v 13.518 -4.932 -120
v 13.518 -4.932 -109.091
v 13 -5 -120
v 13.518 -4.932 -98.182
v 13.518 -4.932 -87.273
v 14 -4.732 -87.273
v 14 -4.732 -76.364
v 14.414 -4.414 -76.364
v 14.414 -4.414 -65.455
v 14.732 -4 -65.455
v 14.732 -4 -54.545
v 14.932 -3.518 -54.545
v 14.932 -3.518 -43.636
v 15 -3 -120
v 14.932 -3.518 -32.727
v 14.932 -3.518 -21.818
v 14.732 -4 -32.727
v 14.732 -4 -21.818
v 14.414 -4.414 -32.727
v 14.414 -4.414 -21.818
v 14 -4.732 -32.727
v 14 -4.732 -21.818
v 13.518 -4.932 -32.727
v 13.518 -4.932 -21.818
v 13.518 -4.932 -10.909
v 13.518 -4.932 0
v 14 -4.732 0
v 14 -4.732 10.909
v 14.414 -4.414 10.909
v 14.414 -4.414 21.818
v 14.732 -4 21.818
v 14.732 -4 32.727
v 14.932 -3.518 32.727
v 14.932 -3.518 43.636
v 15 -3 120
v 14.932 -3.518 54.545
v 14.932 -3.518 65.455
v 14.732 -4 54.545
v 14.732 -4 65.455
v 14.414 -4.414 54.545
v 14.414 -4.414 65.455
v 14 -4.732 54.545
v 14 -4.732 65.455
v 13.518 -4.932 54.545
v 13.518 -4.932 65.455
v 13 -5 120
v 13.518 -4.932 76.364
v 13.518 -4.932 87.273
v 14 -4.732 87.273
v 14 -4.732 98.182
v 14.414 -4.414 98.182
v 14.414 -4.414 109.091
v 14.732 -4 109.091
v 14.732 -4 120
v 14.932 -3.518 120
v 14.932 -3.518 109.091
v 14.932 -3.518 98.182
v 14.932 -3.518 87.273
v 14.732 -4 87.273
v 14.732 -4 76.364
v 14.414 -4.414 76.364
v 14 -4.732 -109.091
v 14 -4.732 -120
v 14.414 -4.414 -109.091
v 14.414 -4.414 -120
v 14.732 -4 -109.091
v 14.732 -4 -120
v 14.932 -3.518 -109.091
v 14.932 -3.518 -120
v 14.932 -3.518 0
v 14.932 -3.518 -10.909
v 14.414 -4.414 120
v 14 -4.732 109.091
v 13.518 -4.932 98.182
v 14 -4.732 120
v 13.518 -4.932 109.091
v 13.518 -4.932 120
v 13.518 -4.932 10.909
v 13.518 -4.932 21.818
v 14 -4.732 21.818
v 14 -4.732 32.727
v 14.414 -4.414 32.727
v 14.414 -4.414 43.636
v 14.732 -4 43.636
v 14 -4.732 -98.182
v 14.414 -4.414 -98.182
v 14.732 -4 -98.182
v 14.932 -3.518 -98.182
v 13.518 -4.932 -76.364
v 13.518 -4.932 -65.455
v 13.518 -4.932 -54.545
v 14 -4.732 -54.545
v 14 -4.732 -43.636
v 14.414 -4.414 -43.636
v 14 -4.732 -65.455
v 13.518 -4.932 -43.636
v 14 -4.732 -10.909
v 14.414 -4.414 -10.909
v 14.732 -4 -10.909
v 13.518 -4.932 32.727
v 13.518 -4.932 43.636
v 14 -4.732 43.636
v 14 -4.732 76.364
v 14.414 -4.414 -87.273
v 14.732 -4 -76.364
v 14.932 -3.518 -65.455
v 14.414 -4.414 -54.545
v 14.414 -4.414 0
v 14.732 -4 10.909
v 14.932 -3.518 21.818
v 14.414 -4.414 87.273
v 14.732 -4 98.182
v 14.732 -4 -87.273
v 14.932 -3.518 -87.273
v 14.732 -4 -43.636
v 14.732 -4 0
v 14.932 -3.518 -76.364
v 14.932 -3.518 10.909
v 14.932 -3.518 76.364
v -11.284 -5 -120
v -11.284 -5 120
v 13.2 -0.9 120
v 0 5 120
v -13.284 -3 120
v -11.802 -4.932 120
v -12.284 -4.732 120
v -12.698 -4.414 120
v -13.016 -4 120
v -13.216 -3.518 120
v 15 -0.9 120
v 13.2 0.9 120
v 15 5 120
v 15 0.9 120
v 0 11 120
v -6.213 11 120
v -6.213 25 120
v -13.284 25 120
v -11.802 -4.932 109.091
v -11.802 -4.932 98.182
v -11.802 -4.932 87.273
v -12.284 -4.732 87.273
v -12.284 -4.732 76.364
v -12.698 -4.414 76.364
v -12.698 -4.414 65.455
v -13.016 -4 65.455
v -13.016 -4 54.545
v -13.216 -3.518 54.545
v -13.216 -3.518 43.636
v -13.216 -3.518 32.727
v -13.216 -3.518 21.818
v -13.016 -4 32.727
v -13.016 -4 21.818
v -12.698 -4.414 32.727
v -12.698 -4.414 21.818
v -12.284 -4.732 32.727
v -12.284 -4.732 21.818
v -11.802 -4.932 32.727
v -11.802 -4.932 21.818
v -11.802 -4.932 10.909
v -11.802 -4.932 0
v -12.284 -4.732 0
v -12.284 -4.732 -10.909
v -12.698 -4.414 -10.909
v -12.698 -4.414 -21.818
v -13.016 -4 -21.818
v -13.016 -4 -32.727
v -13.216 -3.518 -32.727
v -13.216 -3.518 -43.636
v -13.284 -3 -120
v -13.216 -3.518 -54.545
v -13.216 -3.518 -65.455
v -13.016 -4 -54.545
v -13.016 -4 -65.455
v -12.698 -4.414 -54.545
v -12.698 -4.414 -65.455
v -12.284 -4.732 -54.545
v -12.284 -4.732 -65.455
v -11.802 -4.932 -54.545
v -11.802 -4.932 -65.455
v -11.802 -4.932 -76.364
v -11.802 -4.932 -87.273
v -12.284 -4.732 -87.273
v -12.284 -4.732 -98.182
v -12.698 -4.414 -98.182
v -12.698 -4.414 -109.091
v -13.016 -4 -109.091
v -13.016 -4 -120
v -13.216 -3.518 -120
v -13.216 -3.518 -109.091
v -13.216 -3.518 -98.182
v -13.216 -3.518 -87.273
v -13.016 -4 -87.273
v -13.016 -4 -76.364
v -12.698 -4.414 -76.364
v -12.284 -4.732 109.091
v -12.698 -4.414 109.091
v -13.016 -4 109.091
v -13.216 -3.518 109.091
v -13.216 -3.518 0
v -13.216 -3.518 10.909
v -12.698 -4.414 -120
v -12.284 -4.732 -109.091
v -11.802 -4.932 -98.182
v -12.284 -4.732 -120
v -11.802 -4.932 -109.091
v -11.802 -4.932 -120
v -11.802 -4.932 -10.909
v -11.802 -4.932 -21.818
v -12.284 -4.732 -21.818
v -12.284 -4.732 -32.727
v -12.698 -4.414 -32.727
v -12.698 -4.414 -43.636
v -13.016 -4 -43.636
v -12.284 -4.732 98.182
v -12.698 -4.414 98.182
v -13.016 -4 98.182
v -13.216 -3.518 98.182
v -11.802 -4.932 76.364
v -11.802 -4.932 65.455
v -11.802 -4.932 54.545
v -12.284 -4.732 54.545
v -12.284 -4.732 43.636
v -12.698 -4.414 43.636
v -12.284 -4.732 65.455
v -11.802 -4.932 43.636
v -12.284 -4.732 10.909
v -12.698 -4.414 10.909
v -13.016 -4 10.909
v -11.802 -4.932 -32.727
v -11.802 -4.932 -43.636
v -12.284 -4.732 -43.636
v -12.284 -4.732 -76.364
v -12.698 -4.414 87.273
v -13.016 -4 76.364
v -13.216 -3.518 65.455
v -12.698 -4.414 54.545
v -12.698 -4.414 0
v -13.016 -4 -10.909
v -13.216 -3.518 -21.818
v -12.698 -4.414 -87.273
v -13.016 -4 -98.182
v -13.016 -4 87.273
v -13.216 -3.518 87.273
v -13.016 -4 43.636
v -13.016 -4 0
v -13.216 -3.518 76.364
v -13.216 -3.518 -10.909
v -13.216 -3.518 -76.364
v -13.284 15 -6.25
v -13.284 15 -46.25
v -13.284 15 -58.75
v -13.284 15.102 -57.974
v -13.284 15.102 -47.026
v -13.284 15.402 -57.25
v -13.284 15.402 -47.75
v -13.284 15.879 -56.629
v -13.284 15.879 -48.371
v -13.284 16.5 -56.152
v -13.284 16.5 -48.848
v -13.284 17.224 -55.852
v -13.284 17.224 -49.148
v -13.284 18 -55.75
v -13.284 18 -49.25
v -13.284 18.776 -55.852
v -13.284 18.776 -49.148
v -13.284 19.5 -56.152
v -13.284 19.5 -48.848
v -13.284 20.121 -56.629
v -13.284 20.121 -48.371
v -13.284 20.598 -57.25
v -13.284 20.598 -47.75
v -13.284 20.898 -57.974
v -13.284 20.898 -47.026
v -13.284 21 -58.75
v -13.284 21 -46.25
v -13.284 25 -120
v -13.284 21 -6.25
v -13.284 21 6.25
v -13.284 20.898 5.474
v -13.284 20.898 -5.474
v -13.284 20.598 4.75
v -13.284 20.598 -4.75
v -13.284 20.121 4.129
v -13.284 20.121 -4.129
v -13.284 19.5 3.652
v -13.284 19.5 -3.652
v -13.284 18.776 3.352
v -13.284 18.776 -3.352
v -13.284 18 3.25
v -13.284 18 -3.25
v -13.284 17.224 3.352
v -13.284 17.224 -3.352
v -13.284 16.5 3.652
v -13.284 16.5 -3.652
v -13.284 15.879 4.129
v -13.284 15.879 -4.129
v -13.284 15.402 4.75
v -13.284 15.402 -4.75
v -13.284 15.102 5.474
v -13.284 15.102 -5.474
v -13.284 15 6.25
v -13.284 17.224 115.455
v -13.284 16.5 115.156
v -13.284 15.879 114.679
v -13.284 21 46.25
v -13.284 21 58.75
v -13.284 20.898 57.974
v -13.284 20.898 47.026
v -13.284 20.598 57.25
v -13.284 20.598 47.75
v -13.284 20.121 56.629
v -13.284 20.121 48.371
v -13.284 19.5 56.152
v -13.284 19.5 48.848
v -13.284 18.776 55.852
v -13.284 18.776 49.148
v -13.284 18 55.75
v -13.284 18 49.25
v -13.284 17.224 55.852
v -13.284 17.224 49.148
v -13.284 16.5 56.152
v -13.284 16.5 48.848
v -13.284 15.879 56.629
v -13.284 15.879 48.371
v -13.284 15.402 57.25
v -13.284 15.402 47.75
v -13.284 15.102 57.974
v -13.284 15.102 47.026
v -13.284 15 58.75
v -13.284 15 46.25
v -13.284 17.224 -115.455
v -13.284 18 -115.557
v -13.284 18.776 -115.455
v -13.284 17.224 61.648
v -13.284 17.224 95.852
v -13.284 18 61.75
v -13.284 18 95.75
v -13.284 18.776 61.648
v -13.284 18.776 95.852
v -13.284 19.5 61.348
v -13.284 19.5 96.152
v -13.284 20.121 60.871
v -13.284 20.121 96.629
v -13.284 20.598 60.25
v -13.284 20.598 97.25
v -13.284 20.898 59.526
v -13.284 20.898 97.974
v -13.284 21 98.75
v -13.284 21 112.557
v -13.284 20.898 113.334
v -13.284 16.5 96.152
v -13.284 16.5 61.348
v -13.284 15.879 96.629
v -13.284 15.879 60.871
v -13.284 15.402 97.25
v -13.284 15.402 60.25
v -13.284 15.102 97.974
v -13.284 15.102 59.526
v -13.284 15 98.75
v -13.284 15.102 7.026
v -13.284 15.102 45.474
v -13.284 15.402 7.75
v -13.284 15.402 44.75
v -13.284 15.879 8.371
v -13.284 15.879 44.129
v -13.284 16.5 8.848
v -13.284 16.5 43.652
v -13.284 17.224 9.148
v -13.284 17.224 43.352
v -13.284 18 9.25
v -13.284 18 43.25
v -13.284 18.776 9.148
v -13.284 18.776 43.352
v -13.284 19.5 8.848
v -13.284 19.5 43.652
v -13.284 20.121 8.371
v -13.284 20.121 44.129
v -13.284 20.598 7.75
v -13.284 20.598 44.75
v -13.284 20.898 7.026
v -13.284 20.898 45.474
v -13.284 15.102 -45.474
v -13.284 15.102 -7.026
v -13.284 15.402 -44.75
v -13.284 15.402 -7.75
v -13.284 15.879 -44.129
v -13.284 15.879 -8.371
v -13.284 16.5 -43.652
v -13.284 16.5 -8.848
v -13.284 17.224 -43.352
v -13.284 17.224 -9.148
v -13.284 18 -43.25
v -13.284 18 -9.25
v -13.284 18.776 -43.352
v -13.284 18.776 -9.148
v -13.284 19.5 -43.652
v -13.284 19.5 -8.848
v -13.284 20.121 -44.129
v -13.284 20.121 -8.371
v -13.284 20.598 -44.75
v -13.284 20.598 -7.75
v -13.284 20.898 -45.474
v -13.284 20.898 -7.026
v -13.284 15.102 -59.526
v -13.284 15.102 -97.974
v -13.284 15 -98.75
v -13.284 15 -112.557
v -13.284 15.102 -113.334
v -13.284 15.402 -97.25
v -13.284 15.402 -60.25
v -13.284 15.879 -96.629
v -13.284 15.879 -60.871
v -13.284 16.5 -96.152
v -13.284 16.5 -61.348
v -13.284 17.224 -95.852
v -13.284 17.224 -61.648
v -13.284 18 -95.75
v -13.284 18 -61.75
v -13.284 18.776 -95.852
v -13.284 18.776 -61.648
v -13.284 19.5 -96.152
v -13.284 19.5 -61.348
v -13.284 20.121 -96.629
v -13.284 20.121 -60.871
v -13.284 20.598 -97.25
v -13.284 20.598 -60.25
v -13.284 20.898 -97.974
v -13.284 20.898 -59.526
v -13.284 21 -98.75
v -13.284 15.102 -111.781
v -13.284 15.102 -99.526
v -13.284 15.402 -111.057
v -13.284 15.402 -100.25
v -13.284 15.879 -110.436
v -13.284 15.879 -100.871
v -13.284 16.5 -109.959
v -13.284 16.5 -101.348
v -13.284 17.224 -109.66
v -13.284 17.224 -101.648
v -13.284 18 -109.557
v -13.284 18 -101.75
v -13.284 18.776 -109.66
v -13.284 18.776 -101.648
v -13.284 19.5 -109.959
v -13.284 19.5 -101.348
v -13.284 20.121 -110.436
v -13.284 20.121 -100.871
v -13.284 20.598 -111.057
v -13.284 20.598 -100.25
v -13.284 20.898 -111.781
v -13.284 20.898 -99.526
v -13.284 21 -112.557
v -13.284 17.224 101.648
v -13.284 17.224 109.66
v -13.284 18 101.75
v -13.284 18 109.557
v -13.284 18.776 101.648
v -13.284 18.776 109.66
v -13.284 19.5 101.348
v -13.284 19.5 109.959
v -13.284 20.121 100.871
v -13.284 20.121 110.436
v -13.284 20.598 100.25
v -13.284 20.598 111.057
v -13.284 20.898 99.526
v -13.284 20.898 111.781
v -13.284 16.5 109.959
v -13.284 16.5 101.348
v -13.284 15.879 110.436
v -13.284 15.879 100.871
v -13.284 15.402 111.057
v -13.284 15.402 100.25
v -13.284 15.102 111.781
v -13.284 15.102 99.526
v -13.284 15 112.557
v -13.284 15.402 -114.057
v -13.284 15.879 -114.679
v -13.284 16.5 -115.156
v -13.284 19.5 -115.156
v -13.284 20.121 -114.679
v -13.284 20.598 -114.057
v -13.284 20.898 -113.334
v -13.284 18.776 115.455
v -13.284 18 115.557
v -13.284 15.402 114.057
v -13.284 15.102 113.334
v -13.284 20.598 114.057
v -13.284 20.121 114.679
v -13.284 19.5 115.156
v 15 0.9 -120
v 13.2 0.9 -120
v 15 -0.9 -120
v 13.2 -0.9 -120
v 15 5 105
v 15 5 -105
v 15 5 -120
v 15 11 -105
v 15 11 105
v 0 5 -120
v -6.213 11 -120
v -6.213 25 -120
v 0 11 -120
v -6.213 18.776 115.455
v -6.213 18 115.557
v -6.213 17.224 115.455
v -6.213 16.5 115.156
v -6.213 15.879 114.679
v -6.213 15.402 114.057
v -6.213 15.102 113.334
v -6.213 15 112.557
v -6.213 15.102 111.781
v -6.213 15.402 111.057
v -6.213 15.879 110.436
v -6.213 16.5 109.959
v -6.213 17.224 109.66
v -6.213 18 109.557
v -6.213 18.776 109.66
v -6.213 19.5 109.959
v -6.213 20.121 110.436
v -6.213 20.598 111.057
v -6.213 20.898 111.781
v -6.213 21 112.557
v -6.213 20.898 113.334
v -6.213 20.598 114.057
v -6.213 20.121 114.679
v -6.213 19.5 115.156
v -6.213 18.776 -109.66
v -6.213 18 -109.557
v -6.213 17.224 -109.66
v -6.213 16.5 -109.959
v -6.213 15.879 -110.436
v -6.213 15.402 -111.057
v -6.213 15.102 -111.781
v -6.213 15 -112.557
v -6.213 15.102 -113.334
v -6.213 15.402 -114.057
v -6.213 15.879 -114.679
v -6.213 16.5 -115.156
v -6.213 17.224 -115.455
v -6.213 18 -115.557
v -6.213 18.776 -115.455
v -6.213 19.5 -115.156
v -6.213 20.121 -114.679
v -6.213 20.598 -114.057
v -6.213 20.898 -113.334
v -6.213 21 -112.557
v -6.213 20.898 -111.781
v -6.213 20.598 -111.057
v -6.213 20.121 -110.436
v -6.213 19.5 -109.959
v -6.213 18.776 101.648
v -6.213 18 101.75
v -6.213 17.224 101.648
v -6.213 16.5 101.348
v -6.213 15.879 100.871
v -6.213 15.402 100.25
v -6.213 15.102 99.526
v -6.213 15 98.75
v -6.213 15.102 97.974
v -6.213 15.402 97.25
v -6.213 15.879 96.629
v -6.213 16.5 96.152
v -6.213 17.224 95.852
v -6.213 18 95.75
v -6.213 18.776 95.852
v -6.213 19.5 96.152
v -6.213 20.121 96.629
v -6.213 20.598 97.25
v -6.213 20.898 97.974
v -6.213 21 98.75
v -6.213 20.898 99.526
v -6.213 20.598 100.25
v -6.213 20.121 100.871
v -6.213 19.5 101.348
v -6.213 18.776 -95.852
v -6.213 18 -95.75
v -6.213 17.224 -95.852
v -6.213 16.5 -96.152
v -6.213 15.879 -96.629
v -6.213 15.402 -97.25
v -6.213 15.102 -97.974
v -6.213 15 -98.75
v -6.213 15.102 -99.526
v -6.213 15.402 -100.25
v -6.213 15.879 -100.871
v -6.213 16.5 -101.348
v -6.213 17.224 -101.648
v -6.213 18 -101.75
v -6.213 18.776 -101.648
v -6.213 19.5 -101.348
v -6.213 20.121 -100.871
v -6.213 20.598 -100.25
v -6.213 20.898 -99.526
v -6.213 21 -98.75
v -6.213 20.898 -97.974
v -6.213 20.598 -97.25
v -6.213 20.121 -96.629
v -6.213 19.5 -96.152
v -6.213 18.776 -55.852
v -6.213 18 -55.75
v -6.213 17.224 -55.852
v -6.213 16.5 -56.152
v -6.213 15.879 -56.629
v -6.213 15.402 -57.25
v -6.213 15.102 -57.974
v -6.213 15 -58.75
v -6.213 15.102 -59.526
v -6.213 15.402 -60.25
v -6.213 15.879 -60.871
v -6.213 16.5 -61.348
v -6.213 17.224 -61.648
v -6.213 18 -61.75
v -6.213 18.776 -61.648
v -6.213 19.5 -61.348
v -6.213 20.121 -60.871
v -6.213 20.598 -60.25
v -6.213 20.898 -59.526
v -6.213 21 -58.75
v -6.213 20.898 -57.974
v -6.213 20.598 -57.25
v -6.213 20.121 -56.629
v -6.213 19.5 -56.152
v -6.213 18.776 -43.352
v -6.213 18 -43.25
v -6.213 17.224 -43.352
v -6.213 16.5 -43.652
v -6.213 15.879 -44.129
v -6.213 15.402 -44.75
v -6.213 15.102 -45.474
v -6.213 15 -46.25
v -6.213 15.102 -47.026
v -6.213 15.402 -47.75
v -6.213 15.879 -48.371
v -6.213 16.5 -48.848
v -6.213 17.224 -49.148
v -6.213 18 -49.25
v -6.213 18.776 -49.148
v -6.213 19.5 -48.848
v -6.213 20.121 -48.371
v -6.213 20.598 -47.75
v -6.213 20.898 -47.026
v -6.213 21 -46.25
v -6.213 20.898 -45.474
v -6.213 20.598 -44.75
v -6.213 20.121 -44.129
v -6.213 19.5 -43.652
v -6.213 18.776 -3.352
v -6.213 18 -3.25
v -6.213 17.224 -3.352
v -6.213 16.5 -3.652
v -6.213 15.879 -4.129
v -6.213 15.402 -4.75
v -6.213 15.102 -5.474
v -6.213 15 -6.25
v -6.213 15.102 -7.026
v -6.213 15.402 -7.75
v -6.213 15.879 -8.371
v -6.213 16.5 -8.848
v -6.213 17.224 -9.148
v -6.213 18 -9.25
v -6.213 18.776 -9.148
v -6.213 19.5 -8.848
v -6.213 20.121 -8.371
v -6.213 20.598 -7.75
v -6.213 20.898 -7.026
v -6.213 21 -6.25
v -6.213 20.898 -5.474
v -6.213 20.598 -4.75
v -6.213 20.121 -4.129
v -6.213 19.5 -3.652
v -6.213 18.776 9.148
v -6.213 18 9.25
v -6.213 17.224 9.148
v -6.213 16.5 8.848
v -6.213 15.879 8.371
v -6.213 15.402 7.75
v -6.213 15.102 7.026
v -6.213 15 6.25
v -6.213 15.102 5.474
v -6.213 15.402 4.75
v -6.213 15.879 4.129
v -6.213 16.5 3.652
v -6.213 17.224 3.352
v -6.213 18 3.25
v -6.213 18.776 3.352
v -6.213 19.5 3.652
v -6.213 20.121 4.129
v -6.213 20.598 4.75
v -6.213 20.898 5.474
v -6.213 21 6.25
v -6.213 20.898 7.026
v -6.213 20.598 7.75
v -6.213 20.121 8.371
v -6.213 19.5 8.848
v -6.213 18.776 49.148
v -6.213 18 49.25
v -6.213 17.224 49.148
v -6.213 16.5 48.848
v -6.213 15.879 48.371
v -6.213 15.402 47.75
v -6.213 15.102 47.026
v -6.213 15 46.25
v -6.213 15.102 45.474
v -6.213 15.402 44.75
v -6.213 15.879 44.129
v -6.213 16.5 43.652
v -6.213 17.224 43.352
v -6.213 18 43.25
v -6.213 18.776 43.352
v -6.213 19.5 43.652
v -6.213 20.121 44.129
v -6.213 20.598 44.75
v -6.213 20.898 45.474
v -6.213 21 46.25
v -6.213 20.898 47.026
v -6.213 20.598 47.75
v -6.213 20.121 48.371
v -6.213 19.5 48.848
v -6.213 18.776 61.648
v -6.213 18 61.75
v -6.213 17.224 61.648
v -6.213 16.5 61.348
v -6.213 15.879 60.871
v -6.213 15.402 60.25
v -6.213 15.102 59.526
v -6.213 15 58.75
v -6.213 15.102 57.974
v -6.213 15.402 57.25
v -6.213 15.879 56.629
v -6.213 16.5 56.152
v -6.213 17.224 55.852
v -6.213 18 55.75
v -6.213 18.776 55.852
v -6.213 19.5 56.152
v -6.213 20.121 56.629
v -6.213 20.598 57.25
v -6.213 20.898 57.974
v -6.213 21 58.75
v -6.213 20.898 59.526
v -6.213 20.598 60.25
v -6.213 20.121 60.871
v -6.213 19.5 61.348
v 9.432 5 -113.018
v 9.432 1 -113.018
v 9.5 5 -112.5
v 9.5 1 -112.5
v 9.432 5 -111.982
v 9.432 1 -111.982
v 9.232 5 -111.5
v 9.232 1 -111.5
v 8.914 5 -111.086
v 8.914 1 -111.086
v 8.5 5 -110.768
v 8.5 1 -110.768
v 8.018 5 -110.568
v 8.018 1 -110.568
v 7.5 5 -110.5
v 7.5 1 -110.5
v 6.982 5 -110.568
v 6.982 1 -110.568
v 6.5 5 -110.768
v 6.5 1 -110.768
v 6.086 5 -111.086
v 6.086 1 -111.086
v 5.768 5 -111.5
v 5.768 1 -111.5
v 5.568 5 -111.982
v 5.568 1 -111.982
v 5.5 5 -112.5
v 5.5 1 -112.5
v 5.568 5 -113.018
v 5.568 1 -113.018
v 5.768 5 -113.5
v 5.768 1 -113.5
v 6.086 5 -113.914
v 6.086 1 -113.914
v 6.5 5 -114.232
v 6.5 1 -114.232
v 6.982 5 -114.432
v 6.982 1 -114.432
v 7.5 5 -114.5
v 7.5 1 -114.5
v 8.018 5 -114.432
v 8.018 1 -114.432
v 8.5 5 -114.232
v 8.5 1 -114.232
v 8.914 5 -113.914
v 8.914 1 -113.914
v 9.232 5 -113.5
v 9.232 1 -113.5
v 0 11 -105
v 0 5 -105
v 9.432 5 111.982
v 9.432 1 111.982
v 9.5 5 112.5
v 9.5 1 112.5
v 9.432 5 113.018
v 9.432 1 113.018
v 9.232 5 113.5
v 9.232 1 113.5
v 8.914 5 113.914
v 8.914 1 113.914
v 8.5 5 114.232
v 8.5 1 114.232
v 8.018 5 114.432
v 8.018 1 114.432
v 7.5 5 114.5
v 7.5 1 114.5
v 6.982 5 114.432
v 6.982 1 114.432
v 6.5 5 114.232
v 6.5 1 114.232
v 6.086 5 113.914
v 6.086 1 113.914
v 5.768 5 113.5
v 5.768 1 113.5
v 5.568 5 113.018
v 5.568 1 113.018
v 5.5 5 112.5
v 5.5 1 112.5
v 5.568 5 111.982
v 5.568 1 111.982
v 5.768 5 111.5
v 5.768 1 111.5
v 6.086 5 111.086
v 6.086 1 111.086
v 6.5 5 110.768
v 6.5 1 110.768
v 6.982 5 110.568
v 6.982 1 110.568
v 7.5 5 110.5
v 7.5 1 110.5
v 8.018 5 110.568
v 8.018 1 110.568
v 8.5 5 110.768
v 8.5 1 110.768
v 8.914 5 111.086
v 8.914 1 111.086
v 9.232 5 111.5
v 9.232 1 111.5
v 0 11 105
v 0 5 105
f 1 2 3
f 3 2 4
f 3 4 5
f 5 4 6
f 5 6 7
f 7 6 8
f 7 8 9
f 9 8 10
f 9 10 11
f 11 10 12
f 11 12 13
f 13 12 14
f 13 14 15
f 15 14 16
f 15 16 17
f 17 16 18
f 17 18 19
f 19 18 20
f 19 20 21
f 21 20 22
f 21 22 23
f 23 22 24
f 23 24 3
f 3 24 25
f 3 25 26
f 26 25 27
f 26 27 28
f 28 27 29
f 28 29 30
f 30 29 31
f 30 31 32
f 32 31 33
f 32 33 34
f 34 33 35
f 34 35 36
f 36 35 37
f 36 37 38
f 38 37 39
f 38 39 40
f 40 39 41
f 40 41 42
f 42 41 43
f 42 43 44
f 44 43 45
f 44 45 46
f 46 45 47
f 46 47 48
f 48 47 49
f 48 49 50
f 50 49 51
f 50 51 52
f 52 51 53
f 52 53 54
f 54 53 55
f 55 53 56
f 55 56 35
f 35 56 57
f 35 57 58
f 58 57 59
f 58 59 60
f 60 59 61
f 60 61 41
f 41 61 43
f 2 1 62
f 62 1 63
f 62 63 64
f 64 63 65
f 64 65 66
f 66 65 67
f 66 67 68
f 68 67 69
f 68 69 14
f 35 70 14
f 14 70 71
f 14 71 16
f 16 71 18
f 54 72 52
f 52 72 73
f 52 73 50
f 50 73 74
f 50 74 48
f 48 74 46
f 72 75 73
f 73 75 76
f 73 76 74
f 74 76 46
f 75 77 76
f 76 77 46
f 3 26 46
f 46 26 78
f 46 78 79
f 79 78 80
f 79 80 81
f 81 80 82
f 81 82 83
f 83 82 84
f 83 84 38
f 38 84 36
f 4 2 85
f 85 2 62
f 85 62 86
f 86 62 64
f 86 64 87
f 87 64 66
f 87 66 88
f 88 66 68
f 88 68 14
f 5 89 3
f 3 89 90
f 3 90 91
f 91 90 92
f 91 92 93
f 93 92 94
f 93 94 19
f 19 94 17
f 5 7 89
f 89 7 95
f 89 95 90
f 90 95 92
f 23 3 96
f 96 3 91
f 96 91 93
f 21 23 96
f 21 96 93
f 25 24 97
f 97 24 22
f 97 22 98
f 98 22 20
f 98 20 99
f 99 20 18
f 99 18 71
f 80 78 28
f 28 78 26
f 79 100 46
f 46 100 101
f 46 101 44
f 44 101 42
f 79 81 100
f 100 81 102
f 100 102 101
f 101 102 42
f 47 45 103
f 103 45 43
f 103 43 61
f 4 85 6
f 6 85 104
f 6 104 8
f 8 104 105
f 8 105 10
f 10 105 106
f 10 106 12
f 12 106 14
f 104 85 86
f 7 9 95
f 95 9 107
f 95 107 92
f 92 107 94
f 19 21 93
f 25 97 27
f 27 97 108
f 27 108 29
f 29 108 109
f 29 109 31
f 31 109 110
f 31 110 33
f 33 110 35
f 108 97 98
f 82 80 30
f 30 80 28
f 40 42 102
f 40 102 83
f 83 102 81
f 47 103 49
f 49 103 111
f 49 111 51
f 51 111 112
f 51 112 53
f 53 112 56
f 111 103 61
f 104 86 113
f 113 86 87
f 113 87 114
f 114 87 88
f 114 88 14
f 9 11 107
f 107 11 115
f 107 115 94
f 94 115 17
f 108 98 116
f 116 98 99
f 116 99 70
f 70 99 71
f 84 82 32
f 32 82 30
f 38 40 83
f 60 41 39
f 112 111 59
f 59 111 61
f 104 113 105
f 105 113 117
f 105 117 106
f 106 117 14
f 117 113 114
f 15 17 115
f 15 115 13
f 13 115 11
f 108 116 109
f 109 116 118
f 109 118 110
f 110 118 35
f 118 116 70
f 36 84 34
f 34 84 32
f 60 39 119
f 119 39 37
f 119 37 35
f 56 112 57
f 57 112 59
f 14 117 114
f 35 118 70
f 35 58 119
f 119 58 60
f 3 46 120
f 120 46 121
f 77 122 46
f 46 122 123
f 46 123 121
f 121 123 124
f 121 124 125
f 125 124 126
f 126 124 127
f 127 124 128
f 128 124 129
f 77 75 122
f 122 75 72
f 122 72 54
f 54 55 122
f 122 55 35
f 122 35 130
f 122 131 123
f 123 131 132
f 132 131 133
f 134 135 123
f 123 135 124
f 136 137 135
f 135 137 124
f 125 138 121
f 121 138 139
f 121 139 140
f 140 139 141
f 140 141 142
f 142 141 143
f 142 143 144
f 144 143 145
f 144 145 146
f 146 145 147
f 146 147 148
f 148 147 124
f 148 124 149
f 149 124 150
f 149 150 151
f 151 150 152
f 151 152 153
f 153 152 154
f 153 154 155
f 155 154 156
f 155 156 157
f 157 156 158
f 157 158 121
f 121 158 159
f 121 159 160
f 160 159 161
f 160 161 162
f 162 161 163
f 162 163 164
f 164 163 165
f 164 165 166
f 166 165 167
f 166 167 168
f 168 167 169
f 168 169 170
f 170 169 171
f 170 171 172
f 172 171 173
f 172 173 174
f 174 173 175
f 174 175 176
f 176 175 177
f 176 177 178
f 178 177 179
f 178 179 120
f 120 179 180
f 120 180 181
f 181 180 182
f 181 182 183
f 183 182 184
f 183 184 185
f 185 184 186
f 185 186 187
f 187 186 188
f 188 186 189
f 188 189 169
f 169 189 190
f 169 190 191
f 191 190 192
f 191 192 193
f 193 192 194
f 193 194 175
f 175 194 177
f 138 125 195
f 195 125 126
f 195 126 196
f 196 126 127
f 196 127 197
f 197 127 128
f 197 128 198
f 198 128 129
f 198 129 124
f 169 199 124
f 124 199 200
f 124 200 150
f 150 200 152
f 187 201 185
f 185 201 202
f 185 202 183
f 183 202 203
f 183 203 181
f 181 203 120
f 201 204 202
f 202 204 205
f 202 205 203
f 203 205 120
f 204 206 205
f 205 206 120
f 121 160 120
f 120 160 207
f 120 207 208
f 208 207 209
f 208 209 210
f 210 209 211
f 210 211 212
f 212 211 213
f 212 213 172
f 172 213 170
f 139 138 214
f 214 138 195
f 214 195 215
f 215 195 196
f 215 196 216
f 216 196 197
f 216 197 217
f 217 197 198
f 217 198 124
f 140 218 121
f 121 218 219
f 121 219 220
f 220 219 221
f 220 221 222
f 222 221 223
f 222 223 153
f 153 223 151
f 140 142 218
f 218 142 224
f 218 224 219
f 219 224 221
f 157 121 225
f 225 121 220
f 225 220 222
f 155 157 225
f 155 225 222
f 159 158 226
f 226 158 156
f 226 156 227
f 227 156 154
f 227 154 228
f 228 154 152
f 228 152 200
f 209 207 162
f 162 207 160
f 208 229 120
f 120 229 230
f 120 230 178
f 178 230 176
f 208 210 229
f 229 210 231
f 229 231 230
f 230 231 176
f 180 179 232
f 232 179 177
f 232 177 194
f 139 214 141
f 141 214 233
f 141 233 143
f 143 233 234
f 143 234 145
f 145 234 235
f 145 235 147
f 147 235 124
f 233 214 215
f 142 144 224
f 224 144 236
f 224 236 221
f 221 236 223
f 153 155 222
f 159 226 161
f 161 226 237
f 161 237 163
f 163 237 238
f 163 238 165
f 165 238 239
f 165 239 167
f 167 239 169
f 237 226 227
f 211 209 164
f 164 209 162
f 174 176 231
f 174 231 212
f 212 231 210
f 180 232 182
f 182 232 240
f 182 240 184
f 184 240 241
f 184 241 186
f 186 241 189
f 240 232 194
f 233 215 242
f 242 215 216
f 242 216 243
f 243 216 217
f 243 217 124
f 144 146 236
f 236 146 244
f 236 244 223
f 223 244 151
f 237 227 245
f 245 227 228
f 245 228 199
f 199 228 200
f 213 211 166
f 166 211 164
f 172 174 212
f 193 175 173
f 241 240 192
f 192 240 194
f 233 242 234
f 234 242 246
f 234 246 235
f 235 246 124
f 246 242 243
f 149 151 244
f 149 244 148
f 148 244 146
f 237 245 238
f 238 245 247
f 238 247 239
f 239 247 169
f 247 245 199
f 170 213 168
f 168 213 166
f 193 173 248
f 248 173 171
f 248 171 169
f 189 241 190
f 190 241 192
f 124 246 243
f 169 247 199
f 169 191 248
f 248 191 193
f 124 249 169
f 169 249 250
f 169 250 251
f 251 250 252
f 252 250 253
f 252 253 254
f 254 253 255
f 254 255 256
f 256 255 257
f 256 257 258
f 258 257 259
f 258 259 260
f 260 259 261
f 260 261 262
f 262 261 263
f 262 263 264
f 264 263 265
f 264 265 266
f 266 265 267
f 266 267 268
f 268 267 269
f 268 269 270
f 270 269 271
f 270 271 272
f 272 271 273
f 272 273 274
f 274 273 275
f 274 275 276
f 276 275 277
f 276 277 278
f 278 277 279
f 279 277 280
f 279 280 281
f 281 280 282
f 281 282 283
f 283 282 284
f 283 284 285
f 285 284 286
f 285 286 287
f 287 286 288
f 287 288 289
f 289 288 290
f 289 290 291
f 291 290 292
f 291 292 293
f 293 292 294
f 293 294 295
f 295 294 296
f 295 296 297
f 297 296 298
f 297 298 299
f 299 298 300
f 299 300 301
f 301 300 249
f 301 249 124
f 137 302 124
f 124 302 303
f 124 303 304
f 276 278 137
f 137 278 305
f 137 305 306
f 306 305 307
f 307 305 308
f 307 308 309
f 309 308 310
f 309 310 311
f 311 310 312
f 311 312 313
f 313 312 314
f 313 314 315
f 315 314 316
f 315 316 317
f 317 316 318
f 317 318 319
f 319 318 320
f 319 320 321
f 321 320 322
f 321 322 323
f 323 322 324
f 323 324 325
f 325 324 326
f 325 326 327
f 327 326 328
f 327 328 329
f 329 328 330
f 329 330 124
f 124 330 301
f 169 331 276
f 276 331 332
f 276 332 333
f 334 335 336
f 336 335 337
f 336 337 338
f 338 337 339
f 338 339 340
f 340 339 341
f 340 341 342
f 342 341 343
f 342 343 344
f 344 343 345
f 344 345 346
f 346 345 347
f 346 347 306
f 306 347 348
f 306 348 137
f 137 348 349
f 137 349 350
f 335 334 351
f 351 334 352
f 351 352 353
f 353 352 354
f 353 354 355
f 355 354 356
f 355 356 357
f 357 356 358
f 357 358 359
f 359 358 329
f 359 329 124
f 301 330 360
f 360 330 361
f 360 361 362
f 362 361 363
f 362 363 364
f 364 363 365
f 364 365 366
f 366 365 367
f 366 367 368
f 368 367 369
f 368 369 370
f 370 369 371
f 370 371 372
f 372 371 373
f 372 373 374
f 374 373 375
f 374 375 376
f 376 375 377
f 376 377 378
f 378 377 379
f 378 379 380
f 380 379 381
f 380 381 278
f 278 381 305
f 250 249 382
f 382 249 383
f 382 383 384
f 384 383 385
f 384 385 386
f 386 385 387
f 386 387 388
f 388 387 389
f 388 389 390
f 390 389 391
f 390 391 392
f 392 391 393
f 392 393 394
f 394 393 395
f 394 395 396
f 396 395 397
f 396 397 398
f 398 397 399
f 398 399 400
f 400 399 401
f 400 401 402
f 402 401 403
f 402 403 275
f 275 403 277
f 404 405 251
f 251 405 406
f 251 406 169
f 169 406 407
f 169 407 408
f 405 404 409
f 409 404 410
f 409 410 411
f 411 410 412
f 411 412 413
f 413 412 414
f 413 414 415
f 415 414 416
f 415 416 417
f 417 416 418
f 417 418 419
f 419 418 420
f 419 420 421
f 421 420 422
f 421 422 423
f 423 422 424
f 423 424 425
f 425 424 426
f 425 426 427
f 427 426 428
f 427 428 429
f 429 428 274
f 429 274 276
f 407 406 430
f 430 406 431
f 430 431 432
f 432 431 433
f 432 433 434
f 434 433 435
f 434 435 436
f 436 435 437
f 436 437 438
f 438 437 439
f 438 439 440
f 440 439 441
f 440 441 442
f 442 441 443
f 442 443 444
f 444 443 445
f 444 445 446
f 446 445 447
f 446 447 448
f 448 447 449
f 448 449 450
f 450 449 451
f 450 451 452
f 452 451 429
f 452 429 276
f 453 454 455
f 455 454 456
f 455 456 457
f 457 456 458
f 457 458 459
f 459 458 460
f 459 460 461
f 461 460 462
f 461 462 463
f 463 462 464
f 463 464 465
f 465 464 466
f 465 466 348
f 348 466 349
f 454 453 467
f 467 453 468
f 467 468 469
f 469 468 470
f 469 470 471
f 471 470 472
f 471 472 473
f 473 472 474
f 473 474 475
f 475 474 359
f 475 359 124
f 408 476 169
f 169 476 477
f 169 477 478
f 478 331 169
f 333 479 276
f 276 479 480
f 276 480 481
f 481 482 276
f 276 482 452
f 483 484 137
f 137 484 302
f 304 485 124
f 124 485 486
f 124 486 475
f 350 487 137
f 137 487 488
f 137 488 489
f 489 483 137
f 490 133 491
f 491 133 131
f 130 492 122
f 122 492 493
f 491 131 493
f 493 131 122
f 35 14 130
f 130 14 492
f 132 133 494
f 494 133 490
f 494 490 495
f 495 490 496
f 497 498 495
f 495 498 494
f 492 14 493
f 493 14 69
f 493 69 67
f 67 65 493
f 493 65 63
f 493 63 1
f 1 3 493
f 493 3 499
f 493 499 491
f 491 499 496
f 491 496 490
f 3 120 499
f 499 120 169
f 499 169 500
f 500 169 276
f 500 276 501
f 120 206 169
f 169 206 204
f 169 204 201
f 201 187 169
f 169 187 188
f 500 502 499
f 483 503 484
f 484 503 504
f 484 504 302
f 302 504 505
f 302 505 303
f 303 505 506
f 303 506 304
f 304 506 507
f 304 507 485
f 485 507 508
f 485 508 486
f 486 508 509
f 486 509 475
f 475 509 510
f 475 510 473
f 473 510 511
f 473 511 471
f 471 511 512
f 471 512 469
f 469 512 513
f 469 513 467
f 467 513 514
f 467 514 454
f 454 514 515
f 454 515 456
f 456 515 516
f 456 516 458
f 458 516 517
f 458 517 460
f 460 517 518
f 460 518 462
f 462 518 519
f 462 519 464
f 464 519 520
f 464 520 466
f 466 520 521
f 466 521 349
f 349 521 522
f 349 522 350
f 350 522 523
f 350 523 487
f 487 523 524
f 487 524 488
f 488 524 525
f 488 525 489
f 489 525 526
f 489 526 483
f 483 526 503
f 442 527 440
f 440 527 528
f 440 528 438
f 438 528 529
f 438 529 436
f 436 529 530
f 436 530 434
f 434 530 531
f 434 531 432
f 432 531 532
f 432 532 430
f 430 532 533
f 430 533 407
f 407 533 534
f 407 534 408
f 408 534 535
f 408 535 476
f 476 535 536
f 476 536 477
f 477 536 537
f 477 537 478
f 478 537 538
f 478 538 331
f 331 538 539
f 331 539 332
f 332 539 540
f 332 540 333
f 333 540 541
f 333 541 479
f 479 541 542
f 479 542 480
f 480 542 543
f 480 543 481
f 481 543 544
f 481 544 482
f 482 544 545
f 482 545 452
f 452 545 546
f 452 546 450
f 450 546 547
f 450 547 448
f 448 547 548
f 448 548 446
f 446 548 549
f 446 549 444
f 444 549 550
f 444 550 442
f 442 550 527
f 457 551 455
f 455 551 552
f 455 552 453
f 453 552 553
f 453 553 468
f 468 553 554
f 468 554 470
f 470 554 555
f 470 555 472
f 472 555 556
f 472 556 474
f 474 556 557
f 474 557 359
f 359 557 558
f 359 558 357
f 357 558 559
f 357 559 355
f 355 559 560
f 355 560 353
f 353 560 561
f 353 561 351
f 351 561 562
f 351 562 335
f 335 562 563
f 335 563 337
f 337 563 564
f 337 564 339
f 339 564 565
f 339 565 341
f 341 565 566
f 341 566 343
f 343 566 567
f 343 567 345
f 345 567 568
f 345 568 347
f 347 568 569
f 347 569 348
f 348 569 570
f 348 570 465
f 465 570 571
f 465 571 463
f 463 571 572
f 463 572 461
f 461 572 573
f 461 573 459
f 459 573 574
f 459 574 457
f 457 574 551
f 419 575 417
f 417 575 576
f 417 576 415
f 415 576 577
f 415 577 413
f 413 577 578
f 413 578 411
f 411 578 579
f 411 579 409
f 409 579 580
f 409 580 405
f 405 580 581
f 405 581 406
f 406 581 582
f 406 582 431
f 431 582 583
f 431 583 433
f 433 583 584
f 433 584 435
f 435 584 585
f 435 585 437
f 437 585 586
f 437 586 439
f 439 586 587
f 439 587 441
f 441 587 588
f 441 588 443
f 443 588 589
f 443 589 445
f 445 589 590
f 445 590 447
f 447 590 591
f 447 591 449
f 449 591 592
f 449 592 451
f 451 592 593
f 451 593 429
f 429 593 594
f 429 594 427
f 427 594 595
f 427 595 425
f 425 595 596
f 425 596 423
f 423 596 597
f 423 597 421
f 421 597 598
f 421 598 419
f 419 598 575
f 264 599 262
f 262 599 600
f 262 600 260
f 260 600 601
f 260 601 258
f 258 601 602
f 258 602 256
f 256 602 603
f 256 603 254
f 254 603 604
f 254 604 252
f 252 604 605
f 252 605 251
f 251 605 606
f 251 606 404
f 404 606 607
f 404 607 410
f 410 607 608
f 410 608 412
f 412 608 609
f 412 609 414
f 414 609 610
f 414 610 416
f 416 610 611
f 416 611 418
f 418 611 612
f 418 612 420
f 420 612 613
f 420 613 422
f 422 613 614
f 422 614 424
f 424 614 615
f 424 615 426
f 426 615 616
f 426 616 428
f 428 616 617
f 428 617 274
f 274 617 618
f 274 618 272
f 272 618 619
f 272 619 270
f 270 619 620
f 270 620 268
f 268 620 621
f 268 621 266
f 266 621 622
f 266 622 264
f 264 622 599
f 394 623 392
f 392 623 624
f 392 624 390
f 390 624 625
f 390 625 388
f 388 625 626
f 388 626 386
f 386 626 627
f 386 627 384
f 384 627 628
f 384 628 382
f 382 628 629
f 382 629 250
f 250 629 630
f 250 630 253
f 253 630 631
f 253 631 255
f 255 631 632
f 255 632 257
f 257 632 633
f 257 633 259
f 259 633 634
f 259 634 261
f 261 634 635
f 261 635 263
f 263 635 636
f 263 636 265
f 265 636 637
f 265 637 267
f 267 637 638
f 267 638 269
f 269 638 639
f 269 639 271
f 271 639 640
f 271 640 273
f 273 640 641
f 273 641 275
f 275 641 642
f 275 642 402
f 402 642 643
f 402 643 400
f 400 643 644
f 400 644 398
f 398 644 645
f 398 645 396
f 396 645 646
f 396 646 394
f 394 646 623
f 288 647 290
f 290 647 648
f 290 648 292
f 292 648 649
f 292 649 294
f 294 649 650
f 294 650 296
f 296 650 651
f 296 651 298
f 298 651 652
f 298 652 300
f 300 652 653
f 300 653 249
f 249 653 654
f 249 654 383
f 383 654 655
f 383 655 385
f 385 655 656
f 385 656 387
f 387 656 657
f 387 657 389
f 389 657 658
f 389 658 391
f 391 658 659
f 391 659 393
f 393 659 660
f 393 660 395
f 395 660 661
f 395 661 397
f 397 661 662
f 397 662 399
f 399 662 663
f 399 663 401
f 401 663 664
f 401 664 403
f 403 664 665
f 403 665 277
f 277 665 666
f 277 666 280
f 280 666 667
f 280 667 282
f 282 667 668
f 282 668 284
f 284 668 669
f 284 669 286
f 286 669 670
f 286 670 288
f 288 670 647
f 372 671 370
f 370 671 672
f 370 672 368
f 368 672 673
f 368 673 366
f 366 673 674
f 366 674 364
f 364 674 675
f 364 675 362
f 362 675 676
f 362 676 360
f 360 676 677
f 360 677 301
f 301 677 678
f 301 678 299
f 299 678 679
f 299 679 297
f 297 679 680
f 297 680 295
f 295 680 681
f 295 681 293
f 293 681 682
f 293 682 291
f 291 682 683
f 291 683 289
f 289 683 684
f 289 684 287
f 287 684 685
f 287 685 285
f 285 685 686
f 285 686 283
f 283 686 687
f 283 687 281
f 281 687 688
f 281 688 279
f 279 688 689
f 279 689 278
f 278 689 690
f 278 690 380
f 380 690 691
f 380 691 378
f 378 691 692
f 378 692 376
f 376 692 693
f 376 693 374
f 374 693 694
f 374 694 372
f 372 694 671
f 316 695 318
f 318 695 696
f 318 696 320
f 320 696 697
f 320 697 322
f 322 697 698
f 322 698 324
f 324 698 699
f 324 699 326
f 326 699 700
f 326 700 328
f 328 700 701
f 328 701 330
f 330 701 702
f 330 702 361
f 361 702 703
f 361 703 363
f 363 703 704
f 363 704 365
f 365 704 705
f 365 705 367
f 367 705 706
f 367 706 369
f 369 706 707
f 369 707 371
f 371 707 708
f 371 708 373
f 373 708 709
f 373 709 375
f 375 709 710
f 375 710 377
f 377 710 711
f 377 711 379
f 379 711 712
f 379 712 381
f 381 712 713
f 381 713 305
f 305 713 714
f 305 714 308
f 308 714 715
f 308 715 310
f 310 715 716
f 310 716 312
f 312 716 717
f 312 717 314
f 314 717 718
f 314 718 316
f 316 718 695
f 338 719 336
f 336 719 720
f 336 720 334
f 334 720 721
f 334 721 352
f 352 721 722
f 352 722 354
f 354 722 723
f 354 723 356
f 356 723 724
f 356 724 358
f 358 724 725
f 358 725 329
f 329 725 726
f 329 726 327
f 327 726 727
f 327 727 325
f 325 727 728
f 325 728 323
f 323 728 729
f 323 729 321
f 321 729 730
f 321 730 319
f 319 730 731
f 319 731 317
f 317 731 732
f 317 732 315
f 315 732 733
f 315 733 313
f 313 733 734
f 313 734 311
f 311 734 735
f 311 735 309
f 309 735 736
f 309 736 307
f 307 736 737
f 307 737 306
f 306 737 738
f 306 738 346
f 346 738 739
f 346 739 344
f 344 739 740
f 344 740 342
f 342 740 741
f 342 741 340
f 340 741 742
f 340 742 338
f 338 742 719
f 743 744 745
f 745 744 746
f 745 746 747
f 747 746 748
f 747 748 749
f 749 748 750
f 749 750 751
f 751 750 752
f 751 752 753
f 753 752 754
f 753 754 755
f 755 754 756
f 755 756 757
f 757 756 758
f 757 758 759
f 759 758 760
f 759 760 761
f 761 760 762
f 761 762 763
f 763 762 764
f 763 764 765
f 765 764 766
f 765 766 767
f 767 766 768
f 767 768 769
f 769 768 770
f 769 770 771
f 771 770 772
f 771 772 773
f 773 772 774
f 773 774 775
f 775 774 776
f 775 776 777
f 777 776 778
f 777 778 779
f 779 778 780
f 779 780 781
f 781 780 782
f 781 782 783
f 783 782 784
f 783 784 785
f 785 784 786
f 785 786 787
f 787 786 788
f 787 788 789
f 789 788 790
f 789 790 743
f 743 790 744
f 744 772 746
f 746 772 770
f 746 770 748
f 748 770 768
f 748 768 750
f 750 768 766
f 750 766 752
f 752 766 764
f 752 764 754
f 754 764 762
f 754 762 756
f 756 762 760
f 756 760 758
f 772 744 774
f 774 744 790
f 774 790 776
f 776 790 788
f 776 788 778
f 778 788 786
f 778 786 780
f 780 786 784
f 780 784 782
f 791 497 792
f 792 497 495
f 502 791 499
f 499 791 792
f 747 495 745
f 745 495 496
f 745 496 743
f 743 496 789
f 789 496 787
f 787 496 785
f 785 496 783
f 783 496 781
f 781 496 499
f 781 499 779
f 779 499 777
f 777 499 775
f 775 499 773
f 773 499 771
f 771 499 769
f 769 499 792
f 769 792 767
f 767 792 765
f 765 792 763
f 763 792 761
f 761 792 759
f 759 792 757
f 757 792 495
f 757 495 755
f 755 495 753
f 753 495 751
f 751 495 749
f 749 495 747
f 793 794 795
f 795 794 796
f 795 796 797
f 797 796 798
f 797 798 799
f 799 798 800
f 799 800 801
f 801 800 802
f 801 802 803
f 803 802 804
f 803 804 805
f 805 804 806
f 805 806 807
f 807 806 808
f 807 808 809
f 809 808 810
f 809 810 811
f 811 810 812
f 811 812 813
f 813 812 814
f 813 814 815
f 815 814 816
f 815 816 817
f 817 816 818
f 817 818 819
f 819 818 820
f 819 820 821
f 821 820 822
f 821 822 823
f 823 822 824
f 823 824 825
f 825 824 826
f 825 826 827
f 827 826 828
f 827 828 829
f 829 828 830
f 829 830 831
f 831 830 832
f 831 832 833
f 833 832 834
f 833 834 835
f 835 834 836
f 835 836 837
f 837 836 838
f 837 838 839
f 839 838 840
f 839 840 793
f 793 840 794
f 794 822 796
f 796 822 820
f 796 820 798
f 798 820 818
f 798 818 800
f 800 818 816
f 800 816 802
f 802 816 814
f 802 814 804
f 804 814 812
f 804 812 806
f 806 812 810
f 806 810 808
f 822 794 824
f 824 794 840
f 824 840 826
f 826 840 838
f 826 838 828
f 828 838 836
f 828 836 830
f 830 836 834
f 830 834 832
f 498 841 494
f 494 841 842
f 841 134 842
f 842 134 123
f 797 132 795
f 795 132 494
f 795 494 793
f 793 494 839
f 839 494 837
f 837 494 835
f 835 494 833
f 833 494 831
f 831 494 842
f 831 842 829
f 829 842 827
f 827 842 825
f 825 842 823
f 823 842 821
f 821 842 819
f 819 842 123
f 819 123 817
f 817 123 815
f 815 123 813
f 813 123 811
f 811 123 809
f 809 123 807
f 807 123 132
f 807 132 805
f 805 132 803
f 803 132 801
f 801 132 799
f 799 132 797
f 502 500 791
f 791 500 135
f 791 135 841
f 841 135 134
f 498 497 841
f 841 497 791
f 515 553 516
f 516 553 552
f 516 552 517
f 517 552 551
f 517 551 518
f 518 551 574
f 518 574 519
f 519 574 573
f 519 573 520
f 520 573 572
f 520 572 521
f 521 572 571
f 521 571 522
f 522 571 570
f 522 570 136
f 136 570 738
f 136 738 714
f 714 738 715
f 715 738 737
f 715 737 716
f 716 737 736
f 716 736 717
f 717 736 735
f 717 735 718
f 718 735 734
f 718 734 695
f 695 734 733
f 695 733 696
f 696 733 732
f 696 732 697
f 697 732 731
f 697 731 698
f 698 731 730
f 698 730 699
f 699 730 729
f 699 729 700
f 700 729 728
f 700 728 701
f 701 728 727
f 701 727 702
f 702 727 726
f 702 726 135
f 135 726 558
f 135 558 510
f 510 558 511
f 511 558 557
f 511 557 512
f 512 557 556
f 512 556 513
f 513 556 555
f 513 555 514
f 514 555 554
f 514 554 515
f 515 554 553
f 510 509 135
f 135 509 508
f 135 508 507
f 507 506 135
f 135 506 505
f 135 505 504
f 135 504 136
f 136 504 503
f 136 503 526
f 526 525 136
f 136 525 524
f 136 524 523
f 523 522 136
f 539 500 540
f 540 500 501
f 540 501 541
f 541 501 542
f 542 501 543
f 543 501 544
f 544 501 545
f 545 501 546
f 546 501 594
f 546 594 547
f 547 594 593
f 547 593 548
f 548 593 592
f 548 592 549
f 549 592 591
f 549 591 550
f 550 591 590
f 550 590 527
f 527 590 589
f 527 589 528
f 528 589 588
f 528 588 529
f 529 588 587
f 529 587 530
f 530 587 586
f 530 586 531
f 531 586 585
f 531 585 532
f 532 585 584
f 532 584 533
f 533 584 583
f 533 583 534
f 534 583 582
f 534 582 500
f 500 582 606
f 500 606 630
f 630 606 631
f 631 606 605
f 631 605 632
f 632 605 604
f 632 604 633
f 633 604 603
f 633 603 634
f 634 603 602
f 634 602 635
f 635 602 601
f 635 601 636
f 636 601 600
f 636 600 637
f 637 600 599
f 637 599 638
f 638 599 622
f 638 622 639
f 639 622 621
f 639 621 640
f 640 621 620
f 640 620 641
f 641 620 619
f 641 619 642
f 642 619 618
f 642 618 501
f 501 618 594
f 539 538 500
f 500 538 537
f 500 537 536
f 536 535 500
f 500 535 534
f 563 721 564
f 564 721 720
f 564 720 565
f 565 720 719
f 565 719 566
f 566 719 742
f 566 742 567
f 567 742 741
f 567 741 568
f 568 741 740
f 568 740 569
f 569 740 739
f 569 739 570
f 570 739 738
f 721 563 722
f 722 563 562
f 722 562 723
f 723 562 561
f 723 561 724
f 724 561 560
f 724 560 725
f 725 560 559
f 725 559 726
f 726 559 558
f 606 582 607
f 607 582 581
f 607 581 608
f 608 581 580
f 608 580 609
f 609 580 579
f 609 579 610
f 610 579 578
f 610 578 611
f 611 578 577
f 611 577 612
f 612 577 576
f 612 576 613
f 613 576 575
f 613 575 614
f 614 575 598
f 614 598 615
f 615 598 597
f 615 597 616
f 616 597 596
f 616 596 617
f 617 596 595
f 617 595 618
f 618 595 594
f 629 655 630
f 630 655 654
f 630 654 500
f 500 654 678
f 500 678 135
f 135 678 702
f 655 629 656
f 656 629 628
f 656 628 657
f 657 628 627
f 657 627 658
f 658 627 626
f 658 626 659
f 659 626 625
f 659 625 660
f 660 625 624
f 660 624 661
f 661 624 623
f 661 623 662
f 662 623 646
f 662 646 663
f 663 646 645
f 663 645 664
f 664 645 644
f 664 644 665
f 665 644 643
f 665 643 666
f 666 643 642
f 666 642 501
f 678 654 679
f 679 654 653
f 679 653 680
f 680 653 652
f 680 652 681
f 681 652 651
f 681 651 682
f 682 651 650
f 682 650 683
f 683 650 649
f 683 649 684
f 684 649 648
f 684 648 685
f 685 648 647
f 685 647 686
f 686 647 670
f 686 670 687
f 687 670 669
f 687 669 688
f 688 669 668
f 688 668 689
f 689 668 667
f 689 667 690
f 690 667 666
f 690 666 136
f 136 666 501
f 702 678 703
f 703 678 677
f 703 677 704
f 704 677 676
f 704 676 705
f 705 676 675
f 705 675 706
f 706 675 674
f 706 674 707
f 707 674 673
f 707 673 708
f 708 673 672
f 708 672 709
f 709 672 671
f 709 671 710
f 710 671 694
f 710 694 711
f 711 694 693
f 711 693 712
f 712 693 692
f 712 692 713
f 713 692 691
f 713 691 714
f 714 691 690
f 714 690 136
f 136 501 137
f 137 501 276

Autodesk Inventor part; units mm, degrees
ref_plane "YZ Plane" through (0, 0, 0) normal (1, 0, 0) x (0, 1, 0)
ref_plane "XZ Plane" through (0, 0, 0) normal (0, 1, 0) x (-1, 0, 0)
ref_plane "XY Plane" through (0, 0, 0) normal (0, 0, 1) x (1, 0, 0)
sketch "Sketch1" plane through (0, 0, 0) normal (0, 1, 0) x (-1, 0, 0)
  line L0 (15, 120) -> (-15, 120)
  line L1 (-15, 120) -> (-15, -120)
  line L2 (-15, -120) -> (15, -120)
  line L3 (15, -120) -> (15, 120)
  point P0 (0, 0)
  point P1 (0, 120)
  point P2 (15, 0)
  dimension "d0" = 240
  dimension "d1" = 30
extrude "Extrusion1" add sketch "Sketch1" along normal blind 15
sketch "Sketch2" plane through (0, 15, 0) normal (0, 1, 0) x (1, 0, 0)
  line L0 (-15, 120) -> (-15, -120) projected
  line L1 (15, 120) -> (-15, 120) projected
  line L2 (-15, -120) -> (-5, -120)
  line L3 (-5, -120) -> (-5, 120)
  line L4 (-5, 120) -> (-15, 120)
  line L5 (-15, 120) -> (-15, -120)
  point P0 (0, 0)
  dimension "d4" = 10
extrude "Extrusion2" add sketch "Sketch2" along normal blind 10
sketch "Sketch4" plane through (0, 15, 0) normal (0, 1, 0) x (1, 0, 0)
  line L0 (15, 120) -> (-5, 120) projected
  line L1 (15, -120) -> (15, 120) projected
  line L2 (15, -120) -> (0, -120)
  line L3 (0, -120) -> (0, -105)
  line L4 (0, -105) -> (15, -105)
  line L5 (15, -105) -> (15, -120)
  point P0 (0, 0)
  dimension "d42" = 15
  dimension "d43" = 15
extrude "Extrusion3" cut sketch "Sketch4" against normal blind 10
sketch "Sketch5" plane through (0, 5, 0) normal (0, 1, 0) x (1, 0, 0)
  line L0 (15, -120) -> (15, 120) projected
  line L1 (0, -105) -> (15, -105) projected
  line L2 (15, -120) -> (0, -105) construction
  line L3 (-15, -120) -> (15, -120) projected
  line L4 (0, -120) -> (15, -105) construction
  point P0 (0, 0)
  point P1 (7.5, -112.5)
  point P2 (7.5, -112.5)
hole "Hole2" at (7.5, 5, 112.5) direction (0, -1, 0) diameter 4 depth 4
mirror "Mirror1" about plane through (0, 0, 0) normal (0, 0, 1) of "Extrusion3", "Hole2"
move faces "Move1" translate (0, -5, 0) faces at (5, 0, 40)
move faces "Move3" translate (1.716, 0, 0) faces at (-15, 5, -40)
move faces "Move4" translate (-1.213, 0, 0) faces at (-5, 18.3333, 40)
move faces "Move5" translate (0, -4, 0) faces at (10, 15, 35)
sketch "Sketch6" plane through (-6.213, 25, 120) normal (1, 0, 0) x (0, 0, -1)
  point P0 (120, -25)
sketch "Sketch7" plane through (-6.213, 25, 120) normal (1, 0, 0) x (0, 0, -1)
  line L0 (0, 0) -> (240, 0) projected
  line L1 (225, -14) -> (240, -14) projected
  line L2 (0, -14) -> (0, 0) projected
  line L3 (0, -30) -> (0, 0) projected
  line L4 (240, -30) -> (240, 0) projected
  point P0 (120, -25)
  point P1 (218.75, -7)
  point P2 (178.75, -7)
  point P3 (166.25, -7)
  point P4 (126.25, -7)
  point P5 (113.75, -7)
  point P6 (73.75, -7)
  point P7 (61.25, -7)
  point P8 (0, -7)
  point P9 (21.25, -7)
  point P10 (7.4425, -7)
  point P11 (0, -7)
  point P12 (0, -7)
  point P13 (232.5575, -7)
  dimension "d82" = 40
  dimension "d83" = 12.5
  dimension "d84" = 40
  dimension "d85" = 12.5
  dimension "d86" = 40
  dimension "d87" = 12.5
  dimension "d91" = 7
  dimension "d93" = 40
  dimension "d99" = 14
  dimension "d100" = 21.25
  dimension "d101" = 7.4425
  dimension "d103" = 7.4425
hole "Hole3" at (-6.213, 18, 58.75) at (-6.213, 18, 46.25) at (-6.213, 18, 6.25) at (-6.213, 18, -6.25) at (-6.213, 18, -46.25) at (-6.213, 18, -58.75) at (-6.213, 18, -98.75) at (-6.213, 18, 98.75) at (-6.213, 18, -112.5575) at (-6.213, 18, 112.5575) direction (-1, 0, 0) diameter 6 end through all
sketch "Sketch8" plane through (15, 5, 120) normal (1, 0, 0) x (0, 0, -1)
  line L0 (240, -10) -> (240, 20) projected
  line L1 (0, -10) -> (0, 20) projected
  line L2 (240, -10) -> (240, 0) projected
  line L3 (203.8731, -5) -> (-4.7144, -5)
  line L4 (240, -5.9) -> (0, -5.9)
  line L5 (240, -4.1) -> (0, -4.1)
  line L6 (240, -4.1) -> (240, -5.9)
  line L7 (0, -4.1) -> (0, -5.9)
  point P0 (120, -5)
  point P1 (240, -5)
  point P2 (99.5794, -5)
  point P3 (240, -5)
  point P4 (0, -4.1)
  dimension "d78" = 1.8
extrude "Extrusion4" cut sketch "Sketch8" against normal blind 1.8
fillet "Fillet1" radius 2 1 edges at (-13.284, -5, 0)
fillet "Fillet2" radius 2 1 edges at (15, -5, 0)
equation "\"d84\" = d82"
equation "\"d85\" = d83"
equation "\"d86\" = d84"
equation "\"d87\" = d85"
equation "\"d91\" = 0.5 * d99"
equation "\"d93\" = d82"
equation "\"d103\" = d101"
properties part number "horizontal_Edge" material "ABS Plastic"
